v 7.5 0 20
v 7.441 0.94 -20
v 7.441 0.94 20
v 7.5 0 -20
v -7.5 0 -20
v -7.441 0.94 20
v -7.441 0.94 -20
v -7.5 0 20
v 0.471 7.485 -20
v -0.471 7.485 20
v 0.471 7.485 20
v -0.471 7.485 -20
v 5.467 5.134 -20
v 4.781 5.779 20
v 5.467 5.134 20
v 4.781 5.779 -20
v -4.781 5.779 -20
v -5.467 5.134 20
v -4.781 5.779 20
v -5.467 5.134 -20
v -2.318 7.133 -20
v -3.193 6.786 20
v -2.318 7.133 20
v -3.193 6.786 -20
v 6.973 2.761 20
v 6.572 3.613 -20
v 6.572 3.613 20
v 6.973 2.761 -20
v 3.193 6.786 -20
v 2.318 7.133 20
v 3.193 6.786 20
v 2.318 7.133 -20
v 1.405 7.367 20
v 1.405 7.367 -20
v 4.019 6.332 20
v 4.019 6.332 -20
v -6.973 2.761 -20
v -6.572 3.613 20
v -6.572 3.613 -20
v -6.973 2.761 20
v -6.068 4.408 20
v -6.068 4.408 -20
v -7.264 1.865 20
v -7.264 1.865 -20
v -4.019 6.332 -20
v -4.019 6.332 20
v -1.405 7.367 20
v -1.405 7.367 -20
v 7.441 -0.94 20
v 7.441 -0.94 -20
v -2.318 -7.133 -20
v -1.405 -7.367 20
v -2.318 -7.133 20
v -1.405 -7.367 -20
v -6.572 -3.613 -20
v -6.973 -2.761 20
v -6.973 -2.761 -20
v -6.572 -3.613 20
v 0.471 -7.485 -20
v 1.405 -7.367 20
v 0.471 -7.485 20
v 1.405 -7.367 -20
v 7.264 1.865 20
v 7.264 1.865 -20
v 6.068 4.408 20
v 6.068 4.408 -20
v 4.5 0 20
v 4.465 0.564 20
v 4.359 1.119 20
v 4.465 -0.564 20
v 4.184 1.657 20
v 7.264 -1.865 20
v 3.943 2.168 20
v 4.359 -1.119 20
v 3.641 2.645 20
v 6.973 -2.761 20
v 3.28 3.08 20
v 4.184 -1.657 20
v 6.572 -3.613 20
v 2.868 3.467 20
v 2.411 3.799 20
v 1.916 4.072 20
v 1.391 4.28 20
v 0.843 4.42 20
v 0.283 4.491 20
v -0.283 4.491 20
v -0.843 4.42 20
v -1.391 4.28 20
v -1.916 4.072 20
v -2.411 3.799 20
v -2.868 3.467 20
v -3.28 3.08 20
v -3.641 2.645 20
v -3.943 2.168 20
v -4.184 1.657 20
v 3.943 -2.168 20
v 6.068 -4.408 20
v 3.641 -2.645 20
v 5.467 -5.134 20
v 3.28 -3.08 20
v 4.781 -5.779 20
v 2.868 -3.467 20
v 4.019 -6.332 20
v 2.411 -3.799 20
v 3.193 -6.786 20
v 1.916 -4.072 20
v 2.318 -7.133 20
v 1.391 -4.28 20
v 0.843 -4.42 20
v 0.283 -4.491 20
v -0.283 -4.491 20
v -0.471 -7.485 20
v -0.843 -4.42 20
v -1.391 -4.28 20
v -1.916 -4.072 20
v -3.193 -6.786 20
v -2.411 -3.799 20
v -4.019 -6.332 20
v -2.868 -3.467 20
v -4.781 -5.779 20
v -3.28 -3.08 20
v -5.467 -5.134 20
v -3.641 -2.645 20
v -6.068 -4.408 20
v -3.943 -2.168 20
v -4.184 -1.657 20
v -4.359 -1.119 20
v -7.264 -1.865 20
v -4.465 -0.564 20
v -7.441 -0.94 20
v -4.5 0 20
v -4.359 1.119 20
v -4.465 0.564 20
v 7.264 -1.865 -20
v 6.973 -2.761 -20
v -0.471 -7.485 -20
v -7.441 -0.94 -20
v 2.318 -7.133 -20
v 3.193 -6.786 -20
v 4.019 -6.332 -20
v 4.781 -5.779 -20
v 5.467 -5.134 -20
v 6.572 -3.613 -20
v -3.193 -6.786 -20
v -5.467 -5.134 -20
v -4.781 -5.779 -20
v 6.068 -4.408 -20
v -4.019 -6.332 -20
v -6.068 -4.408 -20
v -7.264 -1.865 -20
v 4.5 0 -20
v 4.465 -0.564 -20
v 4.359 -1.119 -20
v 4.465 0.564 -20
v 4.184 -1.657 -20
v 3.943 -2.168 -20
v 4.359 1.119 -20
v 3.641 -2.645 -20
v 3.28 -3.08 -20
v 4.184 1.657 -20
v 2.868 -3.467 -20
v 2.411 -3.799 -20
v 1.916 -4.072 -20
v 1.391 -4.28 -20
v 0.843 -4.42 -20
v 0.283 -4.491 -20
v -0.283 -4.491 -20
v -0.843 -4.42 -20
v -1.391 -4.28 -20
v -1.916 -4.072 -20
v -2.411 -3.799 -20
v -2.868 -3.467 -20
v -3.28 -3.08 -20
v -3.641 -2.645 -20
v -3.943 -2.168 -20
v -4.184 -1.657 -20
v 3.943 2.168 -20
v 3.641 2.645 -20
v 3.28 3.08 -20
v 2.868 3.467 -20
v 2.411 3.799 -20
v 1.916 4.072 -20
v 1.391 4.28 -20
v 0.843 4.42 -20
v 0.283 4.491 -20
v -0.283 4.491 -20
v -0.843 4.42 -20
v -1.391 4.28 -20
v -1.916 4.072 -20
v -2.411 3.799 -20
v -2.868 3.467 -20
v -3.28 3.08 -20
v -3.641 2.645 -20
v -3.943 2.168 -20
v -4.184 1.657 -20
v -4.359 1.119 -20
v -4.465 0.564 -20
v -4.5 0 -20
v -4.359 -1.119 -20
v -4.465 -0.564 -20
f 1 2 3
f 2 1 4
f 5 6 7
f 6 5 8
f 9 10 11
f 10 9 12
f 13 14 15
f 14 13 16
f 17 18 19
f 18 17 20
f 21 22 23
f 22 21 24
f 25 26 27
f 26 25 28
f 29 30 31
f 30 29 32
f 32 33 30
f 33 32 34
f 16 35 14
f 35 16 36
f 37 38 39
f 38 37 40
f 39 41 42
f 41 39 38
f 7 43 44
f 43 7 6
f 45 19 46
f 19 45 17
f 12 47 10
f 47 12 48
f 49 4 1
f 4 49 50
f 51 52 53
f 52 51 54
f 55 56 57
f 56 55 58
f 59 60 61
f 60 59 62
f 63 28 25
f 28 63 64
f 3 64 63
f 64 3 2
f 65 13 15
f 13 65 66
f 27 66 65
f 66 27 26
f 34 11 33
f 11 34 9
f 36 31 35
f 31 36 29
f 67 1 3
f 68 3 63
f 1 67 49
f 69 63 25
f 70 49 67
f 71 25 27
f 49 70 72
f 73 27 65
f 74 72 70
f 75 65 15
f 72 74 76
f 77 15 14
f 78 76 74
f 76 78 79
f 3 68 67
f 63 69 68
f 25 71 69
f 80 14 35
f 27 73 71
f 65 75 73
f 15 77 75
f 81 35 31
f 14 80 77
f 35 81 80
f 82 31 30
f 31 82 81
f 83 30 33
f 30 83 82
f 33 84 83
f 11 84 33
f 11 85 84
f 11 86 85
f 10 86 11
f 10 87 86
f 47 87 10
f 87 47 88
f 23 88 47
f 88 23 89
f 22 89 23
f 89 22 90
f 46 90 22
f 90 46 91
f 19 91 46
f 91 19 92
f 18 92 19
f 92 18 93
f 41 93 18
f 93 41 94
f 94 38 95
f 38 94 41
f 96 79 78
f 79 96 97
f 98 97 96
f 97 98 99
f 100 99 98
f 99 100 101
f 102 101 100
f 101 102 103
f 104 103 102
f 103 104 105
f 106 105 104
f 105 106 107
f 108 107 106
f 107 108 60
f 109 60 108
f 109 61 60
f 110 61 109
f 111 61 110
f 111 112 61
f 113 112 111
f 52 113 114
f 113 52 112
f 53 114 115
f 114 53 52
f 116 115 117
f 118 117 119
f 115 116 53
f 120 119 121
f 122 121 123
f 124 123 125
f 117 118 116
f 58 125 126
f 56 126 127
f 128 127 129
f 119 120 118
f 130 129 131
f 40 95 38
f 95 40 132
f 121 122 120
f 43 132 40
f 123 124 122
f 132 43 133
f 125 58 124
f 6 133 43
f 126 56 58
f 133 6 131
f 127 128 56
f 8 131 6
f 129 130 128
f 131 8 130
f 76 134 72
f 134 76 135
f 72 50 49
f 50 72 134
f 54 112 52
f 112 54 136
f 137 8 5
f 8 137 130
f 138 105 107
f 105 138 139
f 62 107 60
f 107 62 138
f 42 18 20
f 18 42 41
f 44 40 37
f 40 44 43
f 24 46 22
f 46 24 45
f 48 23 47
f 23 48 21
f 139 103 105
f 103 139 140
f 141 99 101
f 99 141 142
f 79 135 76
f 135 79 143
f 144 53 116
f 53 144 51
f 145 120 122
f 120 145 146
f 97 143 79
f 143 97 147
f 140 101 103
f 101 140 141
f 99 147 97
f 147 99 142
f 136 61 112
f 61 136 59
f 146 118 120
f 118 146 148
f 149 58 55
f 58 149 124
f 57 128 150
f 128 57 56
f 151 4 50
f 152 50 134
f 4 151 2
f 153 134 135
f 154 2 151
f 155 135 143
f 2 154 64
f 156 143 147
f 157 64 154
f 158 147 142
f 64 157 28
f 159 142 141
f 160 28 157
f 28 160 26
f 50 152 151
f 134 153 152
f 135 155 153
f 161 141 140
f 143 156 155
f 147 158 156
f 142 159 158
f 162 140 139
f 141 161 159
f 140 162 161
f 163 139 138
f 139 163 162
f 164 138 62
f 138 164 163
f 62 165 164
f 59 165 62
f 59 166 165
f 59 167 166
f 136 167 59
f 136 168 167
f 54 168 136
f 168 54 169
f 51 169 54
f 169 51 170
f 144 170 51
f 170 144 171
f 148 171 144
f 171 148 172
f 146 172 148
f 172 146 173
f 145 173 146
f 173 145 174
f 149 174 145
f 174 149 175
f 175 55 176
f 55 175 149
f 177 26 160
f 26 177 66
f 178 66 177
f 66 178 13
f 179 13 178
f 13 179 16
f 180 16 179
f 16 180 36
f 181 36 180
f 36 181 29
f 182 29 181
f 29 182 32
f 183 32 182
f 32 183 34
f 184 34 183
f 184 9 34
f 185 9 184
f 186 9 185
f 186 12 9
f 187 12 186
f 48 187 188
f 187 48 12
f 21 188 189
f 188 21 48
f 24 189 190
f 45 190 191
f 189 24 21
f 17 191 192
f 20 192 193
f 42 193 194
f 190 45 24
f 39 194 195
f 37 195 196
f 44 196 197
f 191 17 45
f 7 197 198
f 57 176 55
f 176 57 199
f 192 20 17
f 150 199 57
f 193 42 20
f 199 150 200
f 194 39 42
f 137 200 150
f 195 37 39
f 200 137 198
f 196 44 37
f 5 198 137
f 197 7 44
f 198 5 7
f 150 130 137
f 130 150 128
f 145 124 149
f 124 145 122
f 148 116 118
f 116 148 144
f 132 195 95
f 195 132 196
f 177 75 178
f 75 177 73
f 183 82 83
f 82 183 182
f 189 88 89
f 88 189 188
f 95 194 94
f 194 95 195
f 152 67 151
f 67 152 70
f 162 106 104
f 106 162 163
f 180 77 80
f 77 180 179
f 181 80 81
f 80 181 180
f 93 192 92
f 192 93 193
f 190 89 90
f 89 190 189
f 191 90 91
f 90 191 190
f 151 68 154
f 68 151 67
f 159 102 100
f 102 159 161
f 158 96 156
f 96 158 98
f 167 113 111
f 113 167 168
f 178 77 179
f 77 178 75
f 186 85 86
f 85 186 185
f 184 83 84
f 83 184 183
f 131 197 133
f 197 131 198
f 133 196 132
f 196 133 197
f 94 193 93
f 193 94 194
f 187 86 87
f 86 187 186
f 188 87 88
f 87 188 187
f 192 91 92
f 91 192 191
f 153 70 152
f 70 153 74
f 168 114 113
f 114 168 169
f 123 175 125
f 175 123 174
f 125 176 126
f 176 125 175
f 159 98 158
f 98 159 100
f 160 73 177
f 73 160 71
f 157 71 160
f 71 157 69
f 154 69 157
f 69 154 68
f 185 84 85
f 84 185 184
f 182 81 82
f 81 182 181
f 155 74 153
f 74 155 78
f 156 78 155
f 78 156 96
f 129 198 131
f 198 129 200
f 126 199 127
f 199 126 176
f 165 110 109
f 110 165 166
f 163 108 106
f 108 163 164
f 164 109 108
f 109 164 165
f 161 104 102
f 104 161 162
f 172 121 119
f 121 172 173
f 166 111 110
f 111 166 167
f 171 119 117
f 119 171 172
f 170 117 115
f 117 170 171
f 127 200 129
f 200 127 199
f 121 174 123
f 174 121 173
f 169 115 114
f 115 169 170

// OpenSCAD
$fn = 50;


difference() {
	union() {
		translate(v = [0, 0, -20.0000000000]) {
			cylinder(h = 40, r = 7.5000000000);
		}
	}
	union() {
		translate(v = [0, 0, -100.0000000000]) {
			cylinder(h = 200, r = 4.5000000000);
		}
	}
}
